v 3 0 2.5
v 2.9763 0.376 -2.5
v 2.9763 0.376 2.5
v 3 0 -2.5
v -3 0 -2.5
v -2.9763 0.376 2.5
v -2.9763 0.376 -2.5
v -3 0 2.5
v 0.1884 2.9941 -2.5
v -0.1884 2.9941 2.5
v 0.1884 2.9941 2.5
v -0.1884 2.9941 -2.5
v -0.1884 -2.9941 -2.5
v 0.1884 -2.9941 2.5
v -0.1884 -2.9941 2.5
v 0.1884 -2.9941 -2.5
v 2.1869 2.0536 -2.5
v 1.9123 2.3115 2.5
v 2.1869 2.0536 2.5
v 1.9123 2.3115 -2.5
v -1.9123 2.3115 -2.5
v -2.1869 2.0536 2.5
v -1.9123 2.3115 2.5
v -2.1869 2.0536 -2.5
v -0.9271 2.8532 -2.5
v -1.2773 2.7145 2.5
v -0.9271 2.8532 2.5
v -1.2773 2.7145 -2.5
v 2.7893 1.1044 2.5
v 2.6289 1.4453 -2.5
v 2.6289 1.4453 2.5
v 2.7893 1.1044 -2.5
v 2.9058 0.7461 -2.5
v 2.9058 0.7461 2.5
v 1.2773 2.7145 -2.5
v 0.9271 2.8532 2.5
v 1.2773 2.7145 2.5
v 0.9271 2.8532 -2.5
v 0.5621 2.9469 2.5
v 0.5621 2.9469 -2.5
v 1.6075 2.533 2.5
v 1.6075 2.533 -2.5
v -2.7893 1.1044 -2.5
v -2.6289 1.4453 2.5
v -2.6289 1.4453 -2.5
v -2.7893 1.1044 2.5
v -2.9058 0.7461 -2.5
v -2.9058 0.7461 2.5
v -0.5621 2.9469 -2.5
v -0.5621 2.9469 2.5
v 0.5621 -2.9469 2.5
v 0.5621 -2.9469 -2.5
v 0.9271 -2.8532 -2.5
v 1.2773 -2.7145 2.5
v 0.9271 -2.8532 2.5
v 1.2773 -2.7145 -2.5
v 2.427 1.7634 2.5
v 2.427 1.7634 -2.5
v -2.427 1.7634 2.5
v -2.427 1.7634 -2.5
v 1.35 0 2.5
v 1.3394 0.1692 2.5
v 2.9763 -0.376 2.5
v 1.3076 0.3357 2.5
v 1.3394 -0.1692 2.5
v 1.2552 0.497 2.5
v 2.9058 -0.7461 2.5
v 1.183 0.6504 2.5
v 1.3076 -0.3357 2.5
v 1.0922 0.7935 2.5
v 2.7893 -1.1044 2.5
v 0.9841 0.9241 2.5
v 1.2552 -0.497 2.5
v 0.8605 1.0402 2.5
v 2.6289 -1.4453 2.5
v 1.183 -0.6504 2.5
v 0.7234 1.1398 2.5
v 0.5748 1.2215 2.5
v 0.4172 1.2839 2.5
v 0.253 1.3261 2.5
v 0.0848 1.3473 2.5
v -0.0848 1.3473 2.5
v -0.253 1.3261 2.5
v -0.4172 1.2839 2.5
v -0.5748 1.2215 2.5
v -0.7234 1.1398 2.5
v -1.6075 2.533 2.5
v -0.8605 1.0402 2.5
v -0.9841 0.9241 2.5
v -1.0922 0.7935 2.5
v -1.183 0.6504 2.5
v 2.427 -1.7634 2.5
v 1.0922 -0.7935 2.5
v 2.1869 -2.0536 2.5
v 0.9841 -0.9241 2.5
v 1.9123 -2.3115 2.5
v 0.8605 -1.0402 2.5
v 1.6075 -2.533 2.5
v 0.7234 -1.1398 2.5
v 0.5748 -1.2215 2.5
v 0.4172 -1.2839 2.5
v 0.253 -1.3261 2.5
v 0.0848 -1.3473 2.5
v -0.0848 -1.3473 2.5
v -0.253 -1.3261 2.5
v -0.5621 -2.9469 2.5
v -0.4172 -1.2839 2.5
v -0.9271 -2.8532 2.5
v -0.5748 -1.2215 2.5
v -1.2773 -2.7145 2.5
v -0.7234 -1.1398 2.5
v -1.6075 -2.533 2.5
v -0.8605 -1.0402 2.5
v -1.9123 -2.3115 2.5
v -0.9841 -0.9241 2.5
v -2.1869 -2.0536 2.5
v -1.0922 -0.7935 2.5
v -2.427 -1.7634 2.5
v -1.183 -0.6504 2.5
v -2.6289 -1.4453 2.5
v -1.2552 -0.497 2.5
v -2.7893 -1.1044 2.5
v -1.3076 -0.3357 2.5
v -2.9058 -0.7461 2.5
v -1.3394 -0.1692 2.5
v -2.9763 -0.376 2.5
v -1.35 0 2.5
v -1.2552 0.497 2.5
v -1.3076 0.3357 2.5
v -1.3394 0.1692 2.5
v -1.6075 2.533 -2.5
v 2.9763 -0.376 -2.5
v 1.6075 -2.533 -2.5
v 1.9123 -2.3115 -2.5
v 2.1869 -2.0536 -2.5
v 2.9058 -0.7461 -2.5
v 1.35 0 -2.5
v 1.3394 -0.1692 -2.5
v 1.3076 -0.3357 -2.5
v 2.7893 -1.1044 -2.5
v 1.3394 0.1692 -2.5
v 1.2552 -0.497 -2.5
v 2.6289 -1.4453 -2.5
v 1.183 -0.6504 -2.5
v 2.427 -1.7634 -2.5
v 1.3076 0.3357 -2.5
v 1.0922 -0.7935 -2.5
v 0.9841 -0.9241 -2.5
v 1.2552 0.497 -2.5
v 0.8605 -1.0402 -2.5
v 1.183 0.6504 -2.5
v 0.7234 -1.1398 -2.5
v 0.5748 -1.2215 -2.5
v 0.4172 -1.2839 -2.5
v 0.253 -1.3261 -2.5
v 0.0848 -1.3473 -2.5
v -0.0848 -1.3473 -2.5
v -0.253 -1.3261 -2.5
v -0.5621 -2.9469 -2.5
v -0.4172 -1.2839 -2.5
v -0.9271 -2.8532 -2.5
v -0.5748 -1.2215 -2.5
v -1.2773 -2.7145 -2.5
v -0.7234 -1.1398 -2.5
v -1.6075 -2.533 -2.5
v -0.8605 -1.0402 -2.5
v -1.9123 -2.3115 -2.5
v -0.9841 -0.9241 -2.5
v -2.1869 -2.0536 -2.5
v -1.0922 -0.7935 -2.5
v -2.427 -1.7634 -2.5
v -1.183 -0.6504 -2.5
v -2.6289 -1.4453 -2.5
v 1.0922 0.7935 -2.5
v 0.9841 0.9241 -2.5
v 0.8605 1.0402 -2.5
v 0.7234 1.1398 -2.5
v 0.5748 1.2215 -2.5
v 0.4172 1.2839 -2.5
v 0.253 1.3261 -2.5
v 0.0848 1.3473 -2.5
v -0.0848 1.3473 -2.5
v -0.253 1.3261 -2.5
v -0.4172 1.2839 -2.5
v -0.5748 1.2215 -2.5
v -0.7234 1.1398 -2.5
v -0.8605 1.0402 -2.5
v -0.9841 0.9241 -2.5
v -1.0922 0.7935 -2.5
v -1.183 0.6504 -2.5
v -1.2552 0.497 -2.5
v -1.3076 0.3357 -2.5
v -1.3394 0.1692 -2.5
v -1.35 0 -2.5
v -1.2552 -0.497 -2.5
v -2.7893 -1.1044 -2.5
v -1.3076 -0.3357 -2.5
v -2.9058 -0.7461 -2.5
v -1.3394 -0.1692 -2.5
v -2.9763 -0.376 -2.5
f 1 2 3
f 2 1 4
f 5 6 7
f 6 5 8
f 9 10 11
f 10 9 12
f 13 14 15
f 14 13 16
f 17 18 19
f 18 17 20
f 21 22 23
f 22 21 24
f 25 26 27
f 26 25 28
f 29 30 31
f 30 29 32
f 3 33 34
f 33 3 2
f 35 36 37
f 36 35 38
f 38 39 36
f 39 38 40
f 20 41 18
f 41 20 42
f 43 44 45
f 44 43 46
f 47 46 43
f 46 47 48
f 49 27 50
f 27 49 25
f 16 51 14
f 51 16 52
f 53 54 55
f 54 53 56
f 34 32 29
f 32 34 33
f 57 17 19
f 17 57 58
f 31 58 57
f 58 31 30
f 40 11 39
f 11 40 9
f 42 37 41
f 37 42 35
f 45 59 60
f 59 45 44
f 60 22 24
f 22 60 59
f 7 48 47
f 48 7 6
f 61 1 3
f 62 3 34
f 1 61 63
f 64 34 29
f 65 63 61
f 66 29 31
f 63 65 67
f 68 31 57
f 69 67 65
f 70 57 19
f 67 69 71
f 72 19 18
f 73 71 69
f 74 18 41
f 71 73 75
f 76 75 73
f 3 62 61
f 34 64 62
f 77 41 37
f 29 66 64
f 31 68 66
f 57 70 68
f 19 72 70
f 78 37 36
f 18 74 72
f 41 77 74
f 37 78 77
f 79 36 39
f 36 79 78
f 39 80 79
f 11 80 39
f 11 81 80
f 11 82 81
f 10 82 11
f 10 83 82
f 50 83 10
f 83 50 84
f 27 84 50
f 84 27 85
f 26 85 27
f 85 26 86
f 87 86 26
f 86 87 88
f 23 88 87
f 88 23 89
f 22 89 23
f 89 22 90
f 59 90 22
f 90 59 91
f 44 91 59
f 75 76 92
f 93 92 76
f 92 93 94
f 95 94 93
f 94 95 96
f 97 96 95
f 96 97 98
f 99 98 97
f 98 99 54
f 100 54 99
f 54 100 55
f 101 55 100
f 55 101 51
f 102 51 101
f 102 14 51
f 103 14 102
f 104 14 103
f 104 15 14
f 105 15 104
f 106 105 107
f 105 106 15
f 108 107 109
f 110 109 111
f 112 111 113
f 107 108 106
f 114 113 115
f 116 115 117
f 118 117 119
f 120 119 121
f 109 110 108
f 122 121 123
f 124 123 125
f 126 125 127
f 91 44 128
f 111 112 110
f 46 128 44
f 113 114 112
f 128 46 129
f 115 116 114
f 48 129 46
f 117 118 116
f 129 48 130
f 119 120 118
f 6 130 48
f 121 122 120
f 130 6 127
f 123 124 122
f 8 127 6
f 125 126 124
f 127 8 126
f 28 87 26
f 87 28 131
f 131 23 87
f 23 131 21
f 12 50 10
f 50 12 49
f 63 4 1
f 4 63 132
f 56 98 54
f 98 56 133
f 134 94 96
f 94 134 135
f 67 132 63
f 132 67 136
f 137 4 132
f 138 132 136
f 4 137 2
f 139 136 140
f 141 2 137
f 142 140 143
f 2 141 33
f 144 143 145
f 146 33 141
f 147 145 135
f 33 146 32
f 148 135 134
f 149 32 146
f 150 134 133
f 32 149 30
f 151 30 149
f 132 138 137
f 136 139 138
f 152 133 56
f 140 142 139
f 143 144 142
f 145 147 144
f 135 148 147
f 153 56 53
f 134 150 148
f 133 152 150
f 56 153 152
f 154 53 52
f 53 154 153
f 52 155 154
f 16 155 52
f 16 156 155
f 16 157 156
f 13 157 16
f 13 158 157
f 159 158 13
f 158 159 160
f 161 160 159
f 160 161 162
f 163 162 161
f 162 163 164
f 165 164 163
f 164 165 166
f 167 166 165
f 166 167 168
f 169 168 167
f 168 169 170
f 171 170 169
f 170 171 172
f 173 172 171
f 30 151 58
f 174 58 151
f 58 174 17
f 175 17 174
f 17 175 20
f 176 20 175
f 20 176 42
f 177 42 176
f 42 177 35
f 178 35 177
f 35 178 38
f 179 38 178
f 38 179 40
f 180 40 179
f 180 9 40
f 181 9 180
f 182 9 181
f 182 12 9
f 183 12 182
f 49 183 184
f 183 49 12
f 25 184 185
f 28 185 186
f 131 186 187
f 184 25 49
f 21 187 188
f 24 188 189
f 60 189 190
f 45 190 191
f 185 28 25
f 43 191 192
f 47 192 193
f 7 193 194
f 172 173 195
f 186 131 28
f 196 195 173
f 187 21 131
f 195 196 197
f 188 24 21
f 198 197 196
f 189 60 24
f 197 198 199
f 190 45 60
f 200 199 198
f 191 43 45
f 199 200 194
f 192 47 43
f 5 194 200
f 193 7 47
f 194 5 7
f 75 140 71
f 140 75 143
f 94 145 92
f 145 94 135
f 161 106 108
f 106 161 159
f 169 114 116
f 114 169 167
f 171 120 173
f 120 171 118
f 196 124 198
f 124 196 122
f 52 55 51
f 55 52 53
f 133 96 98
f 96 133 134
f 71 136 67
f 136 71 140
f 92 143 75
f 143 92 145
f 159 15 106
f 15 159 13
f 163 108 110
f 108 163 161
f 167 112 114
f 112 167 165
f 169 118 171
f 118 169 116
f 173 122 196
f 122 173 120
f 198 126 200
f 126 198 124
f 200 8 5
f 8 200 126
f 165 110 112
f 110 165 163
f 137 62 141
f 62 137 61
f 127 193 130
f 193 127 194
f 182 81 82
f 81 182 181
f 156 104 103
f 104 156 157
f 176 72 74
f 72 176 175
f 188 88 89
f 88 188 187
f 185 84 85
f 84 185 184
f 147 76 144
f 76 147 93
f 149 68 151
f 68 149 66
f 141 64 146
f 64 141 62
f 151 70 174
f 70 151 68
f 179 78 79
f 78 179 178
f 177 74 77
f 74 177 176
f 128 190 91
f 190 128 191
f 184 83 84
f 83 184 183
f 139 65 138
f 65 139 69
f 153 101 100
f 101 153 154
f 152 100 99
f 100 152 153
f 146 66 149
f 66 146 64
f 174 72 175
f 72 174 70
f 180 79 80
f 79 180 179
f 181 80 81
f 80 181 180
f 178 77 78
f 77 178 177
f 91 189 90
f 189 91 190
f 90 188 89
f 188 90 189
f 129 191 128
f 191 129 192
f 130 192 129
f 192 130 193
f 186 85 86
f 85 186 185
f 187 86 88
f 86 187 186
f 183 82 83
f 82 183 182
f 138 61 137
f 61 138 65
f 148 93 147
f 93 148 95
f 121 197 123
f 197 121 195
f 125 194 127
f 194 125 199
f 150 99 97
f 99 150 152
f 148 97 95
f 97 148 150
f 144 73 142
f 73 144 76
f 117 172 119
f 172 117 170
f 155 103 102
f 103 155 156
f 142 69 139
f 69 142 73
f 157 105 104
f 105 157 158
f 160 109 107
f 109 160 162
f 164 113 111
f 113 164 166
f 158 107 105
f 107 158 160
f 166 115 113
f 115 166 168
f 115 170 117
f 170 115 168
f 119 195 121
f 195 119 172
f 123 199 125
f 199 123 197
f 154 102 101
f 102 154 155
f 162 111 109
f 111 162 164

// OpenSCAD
$fn = 50;


difference() {
	union() {
		translate(v = [0, 0, -2.5000000000]) {
			cylinder(h = 5, r = 3.0000000000);
		}
	}
	union() {
		translate(v = [0, 0, -100.0000000000]) {
			cylinder(h = 200, r = 1.3500000000);
		}
	}
}
